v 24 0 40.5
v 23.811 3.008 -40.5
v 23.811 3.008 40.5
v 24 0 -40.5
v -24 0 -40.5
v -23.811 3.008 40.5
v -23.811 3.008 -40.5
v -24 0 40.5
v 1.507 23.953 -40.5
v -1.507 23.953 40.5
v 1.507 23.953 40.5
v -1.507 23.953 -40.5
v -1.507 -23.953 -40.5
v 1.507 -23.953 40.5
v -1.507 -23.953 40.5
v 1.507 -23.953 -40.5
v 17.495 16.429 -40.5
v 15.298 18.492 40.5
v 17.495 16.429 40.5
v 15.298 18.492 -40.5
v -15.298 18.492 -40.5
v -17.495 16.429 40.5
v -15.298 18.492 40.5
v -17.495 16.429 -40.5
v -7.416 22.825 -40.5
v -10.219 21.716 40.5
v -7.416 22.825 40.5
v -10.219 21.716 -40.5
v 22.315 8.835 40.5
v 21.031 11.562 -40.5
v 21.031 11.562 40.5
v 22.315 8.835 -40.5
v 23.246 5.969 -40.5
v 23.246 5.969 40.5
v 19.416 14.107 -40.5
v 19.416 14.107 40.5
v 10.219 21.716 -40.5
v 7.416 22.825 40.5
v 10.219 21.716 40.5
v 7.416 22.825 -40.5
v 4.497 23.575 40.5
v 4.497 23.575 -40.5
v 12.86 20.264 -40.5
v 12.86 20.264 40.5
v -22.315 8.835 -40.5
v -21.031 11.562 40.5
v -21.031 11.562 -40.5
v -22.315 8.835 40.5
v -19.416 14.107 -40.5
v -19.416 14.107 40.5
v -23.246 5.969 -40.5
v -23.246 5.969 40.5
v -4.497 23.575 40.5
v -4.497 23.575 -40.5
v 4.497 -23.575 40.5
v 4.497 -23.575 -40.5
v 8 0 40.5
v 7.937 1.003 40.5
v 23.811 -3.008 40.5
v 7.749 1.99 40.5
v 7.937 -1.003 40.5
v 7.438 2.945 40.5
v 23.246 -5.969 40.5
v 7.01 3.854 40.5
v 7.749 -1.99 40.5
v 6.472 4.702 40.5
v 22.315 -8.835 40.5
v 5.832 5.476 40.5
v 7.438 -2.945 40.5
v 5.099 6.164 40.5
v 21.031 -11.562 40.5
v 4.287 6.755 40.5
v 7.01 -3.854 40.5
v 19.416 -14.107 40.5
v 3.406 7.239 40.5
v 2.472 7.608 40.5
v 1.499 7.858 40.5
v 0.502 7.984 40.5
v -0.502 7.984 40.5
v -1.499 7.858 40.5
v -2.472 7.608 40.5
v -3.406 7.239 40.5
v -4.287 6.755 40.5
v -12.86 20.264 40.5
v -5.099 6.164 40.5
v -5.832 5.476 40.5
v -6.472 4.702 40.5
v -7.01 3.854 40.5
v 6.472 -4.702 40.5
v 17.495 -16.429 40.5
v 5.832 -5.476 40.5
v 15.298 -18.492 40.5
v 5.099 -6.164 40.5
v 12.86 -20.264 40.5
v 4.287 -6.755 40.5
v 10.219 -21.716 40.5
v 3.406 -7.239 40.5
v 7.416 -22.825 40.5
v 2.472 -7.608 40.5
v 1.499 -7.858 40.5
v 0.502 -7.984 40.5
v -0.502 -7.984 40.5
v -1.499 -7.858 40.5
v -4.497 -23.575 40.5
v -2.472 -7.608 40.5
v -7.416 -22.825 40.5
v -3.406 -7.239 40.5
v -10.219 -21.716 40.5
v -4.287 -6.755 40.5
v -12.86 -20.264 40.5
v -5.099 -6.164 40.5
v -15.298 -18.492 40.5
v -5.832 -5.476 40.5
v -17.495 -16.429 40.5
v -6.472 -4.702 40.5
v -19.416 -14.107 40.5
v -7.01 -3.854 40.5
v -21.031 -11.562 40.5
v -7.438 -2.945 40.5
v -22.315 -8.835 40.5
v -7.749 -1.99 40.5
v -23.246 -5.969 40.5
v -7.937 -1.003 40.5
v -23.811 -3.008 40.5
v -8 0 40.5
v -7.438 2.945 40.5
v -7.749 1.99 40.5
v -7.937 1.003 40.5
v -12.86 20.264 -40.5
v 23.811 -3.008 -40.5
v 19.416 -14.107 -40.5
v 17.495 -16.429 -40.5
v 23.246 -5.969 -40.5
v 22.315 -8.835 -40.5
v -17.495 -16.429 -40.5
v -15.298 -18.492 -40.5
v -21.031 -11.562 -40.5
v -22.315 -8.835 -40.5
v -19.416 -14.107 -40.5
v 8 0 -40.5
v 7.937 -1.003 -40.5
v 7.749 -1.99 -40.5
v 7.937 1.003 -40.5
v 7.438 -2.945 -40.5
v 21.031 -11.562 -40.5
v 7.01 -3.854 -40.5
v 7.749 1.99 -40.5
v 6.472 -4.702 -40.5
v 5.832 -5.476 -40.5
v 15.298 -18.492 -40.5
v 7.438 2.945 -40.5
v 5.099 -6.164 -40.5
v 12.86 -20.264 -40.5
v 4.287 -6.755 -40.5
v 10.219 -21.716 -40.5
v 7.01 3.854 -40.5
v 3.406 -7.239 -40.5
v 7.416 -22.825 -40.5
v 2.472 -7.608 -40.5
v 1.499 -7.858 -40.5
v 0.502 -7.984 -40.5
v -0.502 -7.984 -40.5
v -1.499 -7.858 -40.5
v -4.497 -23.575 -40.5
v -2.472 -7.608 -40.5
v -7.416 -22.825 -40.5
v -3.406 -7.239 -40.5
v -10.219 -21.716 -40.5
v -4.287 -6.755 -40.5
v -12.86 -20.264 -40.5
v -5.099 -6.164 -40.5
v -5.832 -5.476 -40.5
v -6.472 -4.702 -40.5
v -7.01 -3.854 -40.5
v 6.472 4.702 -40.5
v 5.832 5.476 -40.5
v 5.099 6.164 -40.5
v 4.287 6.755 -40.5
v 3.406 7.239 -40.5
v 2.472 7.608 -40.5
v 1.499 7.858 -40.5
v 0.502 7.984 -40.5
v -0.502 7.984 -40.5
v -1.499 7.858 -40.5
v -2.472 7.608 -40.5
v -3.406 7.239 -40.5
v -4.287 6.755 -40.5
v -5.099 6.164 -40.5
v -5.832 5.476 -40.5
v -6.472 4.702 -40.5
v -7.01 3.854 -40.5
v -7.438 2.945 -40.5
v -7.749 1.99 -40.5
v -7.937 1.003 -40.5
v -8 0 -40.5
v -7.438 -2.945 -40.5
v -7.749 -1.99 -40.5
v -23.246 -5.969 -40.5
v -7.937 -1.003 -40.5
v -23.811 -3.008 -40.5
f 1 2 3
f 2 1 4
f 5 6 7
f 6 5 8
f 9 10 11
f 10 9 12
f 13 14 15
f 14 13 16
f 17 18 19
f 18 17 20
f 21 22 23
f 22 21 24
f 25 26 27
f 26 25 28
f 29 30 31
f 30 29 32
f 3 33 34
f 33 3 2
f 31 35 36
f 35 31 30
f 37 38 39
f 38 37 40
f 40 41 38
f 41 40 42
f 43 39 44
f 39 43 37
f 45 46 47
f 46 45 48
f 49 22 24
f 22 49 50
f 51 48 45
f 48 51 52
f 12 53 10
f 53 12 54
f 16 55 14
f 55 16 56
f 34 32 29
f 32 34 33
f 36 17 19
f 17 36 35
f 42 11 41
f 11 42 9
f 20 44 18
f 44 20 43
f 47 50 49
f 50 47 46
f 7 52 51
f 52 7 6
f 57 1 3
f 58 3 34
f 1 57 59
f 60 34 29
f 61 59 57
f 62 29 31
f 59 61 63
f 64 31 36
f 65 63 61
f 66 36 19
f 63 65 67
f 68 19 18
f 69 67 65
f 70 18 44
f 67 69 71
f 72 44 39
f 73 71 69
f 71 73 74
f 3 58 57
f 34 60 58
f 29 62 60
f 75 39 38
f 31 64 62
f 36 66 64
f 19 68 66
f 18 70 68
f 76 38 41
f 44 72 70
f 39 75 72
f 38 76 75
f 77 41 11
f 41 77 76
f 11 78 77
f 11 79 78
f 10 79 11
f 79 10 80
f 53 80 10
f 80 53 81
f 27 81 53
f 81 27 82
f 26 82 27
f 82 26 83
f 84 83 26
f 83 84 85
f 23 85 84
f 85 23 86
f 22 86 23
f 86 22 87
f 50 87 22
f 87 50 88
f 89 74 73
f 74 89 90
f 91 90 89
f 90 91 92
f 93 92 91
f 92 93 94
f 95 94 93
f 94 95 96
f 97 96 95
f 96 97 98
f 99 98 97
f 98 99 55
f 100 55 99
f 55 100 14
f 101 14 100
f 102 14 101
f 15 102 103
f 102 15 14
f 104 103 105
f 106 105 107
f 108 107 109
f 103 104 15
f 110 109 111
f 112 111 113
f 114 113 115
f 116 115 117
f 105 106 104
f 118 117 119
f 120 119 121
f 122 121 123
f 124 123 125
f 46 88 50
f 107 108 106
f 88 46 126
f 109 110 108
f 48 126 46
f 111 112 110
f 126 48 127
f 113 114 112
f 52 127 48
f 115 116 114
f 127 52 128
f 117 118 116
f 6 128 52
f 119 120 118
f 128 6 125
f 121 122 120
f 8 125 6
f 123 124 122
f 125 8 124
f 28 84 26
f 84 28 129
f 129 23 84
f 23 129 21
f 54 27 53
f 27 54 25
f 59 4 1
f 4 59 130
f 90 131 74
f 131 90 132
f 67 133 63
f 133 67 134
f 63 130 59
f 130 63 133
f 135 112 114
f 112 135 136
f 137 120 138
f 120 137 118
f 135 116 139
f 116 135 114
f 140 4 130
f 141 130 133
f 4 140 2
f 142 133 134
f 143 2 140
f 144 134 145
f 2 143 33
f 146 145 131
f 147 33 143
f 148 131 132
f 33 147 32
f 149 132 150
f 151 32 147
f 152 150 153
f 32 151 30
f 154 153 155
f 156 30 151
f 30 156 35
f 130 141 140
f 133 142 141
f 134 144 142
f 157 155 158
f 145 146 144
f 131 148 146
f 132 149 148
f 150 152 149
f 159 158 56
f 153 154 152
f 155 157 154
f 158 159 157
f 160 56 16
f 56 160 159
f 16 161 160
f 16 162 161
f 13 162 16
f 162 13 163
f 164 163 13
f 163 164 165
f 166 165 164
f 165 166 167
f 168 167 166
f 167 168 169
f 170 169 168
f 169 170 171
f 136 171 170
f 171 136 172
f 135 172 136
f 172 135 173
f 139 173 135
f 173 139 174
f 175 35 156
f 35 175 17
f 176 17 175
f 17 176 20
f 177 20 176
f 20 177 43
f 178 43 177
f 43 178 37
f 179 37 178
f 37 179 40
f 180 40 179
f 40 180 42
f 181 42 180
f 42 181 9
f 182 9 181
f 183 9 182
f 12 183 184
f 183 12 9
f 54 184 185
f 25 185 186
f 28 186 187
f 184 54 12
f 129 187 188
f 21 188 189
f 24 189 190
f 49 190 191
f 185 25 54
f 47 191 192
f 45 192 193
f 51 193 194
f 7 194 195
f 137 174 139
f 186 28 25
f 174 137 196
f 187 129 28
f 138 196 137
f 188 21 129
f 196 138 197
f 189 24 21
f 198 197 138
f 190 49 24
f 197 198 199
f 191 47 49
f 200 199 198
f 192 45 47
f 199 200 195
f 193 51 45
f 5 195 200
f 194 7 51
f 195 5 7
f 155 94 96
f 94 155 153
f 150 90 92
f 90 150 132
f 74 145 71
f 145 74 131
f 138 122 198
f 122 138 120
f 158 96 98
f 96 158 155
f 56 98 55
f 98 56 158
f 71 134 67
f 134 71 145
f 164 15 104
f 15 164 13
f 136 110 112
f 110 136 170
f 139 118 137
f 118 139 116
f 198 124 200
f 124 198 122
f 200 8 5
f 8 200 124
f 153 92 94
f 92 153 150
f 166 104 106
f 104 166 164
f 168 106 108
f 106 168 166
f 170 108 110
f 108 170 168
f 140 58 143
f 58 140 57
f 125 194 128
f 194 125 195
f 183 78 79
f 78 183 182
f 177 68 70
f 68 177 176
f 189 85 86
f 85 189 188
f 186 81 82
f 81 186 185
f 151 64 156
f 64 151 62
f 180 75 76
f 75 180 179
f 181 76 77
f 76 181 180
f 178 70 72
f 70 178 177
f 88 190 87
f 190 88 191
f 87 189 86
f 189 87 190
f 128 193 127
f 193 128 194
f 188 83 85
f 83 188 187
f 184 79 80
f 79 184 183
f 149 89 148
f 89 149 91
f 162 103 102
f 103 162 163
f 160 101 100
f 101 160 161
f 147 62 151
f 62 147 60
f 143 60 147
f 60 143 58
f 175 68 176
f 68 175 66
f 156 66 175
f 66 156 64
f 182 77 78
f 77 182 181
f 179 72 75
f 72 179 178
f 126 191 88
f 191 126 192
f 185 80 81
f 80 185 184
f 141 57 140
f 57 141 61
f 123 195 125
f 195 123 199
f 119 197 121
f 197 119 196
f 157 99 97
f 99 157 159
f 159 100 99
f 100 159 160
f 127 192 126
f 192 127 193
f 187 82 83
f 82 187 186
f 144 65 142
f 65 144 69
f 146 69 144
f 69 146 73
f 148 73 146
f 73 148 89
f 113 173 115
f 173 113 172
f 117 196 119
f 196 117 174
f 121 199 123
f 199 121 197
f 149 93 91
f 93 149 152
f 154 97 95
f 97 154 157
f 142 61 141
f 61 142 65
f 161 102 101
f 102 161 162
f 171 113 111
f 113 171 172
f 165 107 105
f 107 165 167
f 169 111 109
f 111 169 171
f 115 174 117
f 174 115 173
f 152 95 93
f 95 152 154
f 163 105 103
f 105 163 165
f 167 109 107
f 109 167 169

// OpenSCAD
$fn = 50;


difference() {
	union() {
		translate(v = [0, 0, -40.5000000000]) {
			cylinder(h = 81, r = 24.0000000000);
		}
	}
	union() {
		translate(v = [0, 0, -100.0000000000]) {
			cylinder(h = 200, r = 8);
		}
	}
}
